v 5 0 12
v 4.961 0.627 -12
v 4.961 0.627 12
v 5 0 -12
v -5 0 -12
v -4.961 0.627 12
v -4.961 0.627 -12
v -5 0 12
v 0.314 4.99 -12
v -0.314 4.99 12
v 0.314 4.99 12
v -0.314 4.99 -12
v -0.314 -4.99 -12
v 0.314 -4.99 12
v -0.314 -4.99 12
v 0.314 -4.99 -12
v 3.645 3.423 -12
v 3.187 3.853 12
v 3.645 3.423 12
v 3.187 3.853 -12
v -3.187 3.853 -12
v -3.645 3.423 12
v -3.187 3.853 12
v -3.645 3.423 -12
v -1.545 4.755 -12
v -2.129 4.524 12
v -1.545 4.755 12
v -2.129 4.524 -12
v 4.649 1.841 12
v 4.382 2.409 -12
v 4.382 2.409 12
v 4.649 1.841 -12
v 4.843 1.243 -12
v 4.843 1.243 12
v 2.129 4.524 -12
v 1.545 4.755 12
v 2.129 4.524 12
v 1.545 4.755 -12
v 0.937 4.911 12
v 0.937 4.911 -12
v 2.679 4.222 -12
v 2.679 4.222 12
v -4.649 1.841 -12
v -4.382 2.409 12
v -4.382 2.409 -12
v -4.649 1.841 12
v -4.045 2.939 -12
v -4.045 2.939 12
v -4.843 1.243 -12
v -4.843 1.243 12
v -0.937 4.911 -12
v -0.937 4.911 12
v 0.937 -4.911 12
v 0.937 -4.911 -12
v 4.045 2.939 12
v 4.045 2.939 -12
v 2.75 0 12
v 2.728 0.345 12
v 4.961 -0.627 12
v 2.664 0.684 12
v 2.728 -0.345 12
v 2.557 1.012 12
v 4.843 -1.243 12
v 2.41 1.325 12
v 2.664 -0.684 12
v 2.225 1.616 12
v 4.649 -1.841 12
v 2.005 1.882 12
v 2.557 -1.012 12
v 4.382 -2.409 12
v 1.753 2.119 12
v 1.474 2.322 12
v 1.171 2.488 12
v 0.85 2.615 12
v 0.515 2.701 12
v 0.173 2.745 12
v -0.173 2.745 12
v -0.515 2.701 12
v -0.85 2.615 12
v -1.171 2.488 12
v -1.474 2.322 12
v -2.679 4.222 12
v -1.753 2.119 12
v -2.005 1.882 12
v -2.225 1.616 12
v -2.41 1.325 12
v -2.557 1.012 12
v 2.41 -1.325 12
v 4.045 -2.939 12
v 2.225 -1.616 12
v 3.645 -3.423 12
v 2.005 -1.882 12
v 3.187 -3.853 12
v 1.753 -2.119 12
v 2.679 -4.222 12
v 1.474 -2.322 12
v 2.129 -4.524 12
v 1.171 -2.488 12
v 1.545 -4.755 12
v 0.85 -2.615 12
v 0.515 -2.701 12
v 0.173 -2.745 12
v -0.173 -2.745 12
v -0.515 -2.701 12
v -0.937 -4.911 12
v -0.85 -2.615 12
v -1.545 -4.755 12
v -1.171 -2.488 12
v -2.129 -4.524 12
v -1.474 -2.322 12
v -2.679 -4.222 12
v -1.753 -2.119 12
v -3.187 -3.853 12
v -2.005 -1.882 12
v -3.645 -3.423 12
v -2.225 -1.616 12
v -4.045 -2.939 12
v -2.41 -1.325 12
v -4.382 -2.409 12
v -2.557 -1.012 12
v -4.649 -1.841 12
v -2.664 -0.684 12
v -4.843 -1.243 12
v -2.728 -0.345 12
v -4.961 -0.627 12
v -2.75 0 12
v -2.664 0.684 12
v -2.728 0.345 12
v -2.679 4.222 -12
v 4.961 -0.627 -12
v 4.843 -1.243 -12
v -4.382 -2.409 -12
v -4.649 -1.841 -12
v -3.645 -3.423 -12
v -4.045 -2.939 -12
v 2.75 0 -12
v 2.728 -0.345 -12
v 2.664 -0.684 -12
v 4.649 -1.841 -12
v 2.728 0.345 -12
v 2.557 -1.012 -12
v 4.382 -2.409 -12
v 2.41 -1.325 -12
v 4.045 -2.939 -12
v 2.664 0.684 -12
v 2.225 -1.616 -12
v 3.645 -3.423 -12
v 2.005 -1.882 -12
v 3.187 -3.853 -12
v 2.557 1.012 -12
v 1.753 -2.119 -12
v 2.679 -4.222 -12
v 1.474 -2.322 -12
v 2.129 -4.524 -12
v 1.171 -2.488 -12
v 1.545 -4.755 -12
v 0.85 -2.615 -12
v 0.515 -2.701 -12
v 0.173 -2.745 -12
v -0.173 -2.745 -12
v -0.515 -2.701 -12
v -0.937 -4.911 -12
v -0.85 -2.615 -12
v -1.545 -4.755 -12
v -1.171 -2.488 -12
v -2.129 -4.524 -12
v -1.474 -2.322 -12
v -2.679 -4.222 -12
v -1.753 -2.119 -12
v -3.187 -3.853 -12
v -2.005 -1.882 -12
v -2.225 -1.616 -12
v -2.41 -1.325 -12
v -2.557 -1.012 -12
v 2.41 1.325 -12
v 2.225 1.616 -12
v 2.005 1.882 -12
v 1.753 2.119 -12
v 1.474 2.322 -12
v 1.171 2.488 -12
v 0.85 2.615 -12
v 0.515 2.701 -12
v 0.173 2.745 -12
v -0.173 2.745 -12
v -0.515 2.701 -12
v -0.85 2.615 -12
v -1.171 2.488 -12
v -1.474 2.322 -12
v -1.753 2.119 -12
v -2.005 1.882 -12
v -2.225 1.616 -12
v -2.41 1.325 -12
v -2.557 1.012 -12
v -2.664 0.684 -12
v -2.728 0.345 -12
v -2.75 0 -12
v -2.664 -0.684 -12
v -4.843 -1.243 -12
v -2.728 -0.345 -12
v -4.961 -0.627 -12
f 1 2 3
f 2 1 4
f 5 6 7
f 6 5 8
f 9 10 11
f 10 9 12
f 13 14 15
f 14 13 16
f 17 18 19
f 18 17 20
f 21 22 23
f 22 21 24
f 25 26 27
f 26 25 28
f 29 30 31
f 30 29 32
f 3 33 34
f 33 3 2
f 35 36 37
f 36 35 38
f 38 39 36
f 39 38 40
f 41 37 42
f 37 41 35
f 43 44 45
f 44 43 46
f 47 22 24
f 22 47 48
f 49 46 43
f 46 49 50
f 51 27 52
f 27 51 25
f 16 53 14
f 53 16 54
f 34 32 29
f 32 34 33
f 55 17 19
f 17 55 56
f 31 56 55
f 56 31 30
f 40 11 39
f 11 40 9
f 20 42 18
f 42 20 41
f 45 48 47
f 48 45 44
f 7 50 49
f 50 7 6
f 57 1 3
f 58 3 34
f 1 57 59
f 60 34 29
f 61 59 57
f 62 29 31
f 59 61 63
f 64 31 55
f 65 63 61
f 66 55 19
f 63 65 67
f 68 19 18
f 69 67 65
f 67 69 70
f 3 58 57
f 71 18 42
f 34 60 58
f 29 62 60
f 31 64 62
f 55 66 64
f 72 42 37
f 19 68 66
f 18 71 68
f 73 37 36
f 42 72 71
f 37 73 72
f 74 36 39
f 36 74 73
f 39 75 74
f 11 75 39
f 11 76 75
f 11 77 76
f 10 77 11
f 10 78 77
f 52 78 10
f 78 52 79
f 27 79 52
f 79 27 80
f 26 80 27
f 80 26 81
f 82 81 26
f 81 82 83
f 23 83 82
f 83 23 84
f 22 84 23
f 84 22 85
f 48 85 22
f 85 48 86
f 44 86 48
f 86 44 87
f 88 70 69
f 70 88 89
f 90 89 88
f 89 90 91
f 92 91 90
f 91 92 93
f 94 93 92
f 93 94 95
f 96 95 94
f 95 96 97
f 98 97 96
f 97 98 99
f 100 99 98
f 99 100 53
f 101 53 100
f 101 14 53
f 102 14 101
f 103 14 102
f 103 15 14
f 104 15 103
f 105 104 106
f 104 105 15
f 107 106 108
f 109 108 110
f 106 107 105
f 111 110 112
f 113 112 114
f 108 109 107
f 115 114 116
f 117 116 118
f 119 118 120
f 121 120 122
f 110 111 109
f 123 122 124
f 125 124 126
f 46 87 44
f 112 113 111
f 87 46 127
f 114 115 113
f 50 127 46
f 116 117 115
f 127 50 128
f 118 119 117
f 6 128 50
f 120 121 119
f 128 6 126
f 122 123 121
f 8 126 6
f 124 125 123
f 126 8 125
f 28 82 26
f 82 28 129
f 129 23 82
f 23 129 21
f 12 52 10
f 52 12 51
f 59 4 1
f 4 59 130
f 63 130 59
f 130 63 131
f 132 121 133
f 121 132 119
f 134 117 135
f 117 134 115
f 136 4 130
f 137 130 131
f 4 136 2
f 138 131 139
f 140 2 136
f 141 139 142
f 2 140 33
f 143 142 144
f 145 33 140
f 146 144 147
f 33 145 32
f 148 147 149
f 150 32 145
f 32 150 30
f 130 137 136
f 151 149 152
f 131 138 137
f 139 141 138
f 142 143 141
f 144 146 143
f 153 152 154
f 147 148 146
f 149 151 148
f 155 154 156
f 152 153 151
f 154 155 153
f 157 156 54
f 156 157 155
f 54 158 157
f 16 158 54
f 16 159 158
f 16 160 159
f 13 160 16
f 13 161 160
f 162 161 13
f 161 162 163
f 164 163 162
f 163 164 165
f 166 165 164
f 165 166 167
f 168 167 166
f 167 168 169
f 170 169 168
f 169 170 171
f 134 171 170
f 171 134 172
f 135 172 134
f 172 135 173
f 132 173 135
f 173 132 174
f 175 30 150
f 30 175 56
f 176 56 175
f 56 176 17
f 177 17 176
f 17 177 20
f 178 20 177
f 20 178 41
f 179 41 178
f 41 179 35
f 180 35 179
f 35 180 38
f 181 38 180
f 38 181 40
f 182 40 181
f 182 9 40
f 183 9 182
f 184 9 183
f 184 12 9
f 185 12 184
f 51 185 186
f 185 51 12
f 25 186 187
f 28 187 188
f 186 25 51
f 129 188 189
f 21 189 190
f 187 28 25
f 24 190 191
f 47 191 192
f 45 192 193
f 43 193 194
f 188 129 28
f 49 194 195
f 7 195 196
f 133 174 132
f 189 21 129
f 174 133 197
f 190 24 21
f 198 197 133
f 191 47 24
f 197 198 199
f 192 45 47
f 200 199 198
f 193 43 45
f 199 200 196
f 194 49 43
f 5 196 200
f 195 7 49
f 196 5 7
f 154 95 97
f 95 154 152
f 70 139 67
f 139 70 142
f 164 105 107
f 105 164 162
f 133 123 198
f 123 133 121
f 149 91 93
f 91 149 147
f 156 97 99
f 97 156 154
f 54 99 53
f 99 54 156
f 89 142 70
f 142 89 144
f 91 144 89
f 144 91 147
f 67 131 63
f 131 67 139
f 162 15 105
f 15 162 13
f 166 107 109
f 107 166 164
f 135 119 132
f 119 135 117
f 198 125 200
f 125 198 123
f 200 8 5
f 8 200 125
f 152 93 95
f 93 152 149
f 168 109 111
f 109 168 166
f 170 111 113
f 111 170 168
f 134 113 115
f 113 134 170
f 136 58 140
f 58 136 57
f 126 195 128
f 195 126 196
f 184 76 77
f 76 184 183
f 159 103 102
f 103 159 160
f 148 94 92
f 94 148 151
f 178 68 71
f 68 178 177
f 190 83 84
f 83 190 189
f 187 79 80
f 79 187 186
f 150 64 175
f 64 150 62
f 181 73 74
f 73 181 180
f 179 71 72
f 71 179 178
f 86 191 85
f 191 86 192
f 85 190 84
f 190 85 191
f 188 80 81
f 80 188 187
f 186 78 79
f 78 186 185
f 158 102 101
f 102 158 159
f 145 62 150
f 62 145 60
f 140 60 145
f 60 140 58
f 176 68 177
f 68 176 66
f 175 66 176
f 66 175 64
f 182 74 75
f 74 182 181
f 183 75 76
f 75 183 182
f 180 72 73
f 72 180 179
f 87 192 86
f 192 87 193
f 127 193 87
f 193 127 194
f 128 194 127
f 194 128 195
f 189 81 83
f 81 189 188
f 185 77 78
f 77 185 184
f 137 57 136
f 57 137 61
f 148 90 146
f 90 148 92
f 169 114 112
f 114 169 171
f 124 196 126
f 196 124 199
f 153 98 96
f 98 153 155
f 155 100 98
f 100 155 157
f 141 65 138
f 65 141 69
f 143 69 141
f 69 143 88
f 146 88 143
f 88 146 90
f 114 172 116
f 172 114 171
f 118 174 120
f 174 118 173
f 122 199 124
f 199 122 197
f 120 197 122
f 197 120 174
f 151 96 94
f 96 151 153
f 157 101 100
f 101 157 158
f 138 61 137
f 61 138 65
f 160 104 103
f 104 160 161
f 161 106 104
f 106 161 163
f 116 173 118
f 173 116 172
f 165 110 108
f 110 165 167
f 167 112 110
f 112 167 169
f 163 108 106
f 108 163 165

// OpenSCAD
$fn = 50;


difference() {
	union() {
		translate(v = [0, 0, -12.0000000000]) {
			cylinder(h = 24, r = 5.0000000000);
		}
	}
	union() {
		translate(v = [0, 0, -100.0000000000]) {
			cylinder(h = 200, r = 2.7500000000);
		}
	}
}
